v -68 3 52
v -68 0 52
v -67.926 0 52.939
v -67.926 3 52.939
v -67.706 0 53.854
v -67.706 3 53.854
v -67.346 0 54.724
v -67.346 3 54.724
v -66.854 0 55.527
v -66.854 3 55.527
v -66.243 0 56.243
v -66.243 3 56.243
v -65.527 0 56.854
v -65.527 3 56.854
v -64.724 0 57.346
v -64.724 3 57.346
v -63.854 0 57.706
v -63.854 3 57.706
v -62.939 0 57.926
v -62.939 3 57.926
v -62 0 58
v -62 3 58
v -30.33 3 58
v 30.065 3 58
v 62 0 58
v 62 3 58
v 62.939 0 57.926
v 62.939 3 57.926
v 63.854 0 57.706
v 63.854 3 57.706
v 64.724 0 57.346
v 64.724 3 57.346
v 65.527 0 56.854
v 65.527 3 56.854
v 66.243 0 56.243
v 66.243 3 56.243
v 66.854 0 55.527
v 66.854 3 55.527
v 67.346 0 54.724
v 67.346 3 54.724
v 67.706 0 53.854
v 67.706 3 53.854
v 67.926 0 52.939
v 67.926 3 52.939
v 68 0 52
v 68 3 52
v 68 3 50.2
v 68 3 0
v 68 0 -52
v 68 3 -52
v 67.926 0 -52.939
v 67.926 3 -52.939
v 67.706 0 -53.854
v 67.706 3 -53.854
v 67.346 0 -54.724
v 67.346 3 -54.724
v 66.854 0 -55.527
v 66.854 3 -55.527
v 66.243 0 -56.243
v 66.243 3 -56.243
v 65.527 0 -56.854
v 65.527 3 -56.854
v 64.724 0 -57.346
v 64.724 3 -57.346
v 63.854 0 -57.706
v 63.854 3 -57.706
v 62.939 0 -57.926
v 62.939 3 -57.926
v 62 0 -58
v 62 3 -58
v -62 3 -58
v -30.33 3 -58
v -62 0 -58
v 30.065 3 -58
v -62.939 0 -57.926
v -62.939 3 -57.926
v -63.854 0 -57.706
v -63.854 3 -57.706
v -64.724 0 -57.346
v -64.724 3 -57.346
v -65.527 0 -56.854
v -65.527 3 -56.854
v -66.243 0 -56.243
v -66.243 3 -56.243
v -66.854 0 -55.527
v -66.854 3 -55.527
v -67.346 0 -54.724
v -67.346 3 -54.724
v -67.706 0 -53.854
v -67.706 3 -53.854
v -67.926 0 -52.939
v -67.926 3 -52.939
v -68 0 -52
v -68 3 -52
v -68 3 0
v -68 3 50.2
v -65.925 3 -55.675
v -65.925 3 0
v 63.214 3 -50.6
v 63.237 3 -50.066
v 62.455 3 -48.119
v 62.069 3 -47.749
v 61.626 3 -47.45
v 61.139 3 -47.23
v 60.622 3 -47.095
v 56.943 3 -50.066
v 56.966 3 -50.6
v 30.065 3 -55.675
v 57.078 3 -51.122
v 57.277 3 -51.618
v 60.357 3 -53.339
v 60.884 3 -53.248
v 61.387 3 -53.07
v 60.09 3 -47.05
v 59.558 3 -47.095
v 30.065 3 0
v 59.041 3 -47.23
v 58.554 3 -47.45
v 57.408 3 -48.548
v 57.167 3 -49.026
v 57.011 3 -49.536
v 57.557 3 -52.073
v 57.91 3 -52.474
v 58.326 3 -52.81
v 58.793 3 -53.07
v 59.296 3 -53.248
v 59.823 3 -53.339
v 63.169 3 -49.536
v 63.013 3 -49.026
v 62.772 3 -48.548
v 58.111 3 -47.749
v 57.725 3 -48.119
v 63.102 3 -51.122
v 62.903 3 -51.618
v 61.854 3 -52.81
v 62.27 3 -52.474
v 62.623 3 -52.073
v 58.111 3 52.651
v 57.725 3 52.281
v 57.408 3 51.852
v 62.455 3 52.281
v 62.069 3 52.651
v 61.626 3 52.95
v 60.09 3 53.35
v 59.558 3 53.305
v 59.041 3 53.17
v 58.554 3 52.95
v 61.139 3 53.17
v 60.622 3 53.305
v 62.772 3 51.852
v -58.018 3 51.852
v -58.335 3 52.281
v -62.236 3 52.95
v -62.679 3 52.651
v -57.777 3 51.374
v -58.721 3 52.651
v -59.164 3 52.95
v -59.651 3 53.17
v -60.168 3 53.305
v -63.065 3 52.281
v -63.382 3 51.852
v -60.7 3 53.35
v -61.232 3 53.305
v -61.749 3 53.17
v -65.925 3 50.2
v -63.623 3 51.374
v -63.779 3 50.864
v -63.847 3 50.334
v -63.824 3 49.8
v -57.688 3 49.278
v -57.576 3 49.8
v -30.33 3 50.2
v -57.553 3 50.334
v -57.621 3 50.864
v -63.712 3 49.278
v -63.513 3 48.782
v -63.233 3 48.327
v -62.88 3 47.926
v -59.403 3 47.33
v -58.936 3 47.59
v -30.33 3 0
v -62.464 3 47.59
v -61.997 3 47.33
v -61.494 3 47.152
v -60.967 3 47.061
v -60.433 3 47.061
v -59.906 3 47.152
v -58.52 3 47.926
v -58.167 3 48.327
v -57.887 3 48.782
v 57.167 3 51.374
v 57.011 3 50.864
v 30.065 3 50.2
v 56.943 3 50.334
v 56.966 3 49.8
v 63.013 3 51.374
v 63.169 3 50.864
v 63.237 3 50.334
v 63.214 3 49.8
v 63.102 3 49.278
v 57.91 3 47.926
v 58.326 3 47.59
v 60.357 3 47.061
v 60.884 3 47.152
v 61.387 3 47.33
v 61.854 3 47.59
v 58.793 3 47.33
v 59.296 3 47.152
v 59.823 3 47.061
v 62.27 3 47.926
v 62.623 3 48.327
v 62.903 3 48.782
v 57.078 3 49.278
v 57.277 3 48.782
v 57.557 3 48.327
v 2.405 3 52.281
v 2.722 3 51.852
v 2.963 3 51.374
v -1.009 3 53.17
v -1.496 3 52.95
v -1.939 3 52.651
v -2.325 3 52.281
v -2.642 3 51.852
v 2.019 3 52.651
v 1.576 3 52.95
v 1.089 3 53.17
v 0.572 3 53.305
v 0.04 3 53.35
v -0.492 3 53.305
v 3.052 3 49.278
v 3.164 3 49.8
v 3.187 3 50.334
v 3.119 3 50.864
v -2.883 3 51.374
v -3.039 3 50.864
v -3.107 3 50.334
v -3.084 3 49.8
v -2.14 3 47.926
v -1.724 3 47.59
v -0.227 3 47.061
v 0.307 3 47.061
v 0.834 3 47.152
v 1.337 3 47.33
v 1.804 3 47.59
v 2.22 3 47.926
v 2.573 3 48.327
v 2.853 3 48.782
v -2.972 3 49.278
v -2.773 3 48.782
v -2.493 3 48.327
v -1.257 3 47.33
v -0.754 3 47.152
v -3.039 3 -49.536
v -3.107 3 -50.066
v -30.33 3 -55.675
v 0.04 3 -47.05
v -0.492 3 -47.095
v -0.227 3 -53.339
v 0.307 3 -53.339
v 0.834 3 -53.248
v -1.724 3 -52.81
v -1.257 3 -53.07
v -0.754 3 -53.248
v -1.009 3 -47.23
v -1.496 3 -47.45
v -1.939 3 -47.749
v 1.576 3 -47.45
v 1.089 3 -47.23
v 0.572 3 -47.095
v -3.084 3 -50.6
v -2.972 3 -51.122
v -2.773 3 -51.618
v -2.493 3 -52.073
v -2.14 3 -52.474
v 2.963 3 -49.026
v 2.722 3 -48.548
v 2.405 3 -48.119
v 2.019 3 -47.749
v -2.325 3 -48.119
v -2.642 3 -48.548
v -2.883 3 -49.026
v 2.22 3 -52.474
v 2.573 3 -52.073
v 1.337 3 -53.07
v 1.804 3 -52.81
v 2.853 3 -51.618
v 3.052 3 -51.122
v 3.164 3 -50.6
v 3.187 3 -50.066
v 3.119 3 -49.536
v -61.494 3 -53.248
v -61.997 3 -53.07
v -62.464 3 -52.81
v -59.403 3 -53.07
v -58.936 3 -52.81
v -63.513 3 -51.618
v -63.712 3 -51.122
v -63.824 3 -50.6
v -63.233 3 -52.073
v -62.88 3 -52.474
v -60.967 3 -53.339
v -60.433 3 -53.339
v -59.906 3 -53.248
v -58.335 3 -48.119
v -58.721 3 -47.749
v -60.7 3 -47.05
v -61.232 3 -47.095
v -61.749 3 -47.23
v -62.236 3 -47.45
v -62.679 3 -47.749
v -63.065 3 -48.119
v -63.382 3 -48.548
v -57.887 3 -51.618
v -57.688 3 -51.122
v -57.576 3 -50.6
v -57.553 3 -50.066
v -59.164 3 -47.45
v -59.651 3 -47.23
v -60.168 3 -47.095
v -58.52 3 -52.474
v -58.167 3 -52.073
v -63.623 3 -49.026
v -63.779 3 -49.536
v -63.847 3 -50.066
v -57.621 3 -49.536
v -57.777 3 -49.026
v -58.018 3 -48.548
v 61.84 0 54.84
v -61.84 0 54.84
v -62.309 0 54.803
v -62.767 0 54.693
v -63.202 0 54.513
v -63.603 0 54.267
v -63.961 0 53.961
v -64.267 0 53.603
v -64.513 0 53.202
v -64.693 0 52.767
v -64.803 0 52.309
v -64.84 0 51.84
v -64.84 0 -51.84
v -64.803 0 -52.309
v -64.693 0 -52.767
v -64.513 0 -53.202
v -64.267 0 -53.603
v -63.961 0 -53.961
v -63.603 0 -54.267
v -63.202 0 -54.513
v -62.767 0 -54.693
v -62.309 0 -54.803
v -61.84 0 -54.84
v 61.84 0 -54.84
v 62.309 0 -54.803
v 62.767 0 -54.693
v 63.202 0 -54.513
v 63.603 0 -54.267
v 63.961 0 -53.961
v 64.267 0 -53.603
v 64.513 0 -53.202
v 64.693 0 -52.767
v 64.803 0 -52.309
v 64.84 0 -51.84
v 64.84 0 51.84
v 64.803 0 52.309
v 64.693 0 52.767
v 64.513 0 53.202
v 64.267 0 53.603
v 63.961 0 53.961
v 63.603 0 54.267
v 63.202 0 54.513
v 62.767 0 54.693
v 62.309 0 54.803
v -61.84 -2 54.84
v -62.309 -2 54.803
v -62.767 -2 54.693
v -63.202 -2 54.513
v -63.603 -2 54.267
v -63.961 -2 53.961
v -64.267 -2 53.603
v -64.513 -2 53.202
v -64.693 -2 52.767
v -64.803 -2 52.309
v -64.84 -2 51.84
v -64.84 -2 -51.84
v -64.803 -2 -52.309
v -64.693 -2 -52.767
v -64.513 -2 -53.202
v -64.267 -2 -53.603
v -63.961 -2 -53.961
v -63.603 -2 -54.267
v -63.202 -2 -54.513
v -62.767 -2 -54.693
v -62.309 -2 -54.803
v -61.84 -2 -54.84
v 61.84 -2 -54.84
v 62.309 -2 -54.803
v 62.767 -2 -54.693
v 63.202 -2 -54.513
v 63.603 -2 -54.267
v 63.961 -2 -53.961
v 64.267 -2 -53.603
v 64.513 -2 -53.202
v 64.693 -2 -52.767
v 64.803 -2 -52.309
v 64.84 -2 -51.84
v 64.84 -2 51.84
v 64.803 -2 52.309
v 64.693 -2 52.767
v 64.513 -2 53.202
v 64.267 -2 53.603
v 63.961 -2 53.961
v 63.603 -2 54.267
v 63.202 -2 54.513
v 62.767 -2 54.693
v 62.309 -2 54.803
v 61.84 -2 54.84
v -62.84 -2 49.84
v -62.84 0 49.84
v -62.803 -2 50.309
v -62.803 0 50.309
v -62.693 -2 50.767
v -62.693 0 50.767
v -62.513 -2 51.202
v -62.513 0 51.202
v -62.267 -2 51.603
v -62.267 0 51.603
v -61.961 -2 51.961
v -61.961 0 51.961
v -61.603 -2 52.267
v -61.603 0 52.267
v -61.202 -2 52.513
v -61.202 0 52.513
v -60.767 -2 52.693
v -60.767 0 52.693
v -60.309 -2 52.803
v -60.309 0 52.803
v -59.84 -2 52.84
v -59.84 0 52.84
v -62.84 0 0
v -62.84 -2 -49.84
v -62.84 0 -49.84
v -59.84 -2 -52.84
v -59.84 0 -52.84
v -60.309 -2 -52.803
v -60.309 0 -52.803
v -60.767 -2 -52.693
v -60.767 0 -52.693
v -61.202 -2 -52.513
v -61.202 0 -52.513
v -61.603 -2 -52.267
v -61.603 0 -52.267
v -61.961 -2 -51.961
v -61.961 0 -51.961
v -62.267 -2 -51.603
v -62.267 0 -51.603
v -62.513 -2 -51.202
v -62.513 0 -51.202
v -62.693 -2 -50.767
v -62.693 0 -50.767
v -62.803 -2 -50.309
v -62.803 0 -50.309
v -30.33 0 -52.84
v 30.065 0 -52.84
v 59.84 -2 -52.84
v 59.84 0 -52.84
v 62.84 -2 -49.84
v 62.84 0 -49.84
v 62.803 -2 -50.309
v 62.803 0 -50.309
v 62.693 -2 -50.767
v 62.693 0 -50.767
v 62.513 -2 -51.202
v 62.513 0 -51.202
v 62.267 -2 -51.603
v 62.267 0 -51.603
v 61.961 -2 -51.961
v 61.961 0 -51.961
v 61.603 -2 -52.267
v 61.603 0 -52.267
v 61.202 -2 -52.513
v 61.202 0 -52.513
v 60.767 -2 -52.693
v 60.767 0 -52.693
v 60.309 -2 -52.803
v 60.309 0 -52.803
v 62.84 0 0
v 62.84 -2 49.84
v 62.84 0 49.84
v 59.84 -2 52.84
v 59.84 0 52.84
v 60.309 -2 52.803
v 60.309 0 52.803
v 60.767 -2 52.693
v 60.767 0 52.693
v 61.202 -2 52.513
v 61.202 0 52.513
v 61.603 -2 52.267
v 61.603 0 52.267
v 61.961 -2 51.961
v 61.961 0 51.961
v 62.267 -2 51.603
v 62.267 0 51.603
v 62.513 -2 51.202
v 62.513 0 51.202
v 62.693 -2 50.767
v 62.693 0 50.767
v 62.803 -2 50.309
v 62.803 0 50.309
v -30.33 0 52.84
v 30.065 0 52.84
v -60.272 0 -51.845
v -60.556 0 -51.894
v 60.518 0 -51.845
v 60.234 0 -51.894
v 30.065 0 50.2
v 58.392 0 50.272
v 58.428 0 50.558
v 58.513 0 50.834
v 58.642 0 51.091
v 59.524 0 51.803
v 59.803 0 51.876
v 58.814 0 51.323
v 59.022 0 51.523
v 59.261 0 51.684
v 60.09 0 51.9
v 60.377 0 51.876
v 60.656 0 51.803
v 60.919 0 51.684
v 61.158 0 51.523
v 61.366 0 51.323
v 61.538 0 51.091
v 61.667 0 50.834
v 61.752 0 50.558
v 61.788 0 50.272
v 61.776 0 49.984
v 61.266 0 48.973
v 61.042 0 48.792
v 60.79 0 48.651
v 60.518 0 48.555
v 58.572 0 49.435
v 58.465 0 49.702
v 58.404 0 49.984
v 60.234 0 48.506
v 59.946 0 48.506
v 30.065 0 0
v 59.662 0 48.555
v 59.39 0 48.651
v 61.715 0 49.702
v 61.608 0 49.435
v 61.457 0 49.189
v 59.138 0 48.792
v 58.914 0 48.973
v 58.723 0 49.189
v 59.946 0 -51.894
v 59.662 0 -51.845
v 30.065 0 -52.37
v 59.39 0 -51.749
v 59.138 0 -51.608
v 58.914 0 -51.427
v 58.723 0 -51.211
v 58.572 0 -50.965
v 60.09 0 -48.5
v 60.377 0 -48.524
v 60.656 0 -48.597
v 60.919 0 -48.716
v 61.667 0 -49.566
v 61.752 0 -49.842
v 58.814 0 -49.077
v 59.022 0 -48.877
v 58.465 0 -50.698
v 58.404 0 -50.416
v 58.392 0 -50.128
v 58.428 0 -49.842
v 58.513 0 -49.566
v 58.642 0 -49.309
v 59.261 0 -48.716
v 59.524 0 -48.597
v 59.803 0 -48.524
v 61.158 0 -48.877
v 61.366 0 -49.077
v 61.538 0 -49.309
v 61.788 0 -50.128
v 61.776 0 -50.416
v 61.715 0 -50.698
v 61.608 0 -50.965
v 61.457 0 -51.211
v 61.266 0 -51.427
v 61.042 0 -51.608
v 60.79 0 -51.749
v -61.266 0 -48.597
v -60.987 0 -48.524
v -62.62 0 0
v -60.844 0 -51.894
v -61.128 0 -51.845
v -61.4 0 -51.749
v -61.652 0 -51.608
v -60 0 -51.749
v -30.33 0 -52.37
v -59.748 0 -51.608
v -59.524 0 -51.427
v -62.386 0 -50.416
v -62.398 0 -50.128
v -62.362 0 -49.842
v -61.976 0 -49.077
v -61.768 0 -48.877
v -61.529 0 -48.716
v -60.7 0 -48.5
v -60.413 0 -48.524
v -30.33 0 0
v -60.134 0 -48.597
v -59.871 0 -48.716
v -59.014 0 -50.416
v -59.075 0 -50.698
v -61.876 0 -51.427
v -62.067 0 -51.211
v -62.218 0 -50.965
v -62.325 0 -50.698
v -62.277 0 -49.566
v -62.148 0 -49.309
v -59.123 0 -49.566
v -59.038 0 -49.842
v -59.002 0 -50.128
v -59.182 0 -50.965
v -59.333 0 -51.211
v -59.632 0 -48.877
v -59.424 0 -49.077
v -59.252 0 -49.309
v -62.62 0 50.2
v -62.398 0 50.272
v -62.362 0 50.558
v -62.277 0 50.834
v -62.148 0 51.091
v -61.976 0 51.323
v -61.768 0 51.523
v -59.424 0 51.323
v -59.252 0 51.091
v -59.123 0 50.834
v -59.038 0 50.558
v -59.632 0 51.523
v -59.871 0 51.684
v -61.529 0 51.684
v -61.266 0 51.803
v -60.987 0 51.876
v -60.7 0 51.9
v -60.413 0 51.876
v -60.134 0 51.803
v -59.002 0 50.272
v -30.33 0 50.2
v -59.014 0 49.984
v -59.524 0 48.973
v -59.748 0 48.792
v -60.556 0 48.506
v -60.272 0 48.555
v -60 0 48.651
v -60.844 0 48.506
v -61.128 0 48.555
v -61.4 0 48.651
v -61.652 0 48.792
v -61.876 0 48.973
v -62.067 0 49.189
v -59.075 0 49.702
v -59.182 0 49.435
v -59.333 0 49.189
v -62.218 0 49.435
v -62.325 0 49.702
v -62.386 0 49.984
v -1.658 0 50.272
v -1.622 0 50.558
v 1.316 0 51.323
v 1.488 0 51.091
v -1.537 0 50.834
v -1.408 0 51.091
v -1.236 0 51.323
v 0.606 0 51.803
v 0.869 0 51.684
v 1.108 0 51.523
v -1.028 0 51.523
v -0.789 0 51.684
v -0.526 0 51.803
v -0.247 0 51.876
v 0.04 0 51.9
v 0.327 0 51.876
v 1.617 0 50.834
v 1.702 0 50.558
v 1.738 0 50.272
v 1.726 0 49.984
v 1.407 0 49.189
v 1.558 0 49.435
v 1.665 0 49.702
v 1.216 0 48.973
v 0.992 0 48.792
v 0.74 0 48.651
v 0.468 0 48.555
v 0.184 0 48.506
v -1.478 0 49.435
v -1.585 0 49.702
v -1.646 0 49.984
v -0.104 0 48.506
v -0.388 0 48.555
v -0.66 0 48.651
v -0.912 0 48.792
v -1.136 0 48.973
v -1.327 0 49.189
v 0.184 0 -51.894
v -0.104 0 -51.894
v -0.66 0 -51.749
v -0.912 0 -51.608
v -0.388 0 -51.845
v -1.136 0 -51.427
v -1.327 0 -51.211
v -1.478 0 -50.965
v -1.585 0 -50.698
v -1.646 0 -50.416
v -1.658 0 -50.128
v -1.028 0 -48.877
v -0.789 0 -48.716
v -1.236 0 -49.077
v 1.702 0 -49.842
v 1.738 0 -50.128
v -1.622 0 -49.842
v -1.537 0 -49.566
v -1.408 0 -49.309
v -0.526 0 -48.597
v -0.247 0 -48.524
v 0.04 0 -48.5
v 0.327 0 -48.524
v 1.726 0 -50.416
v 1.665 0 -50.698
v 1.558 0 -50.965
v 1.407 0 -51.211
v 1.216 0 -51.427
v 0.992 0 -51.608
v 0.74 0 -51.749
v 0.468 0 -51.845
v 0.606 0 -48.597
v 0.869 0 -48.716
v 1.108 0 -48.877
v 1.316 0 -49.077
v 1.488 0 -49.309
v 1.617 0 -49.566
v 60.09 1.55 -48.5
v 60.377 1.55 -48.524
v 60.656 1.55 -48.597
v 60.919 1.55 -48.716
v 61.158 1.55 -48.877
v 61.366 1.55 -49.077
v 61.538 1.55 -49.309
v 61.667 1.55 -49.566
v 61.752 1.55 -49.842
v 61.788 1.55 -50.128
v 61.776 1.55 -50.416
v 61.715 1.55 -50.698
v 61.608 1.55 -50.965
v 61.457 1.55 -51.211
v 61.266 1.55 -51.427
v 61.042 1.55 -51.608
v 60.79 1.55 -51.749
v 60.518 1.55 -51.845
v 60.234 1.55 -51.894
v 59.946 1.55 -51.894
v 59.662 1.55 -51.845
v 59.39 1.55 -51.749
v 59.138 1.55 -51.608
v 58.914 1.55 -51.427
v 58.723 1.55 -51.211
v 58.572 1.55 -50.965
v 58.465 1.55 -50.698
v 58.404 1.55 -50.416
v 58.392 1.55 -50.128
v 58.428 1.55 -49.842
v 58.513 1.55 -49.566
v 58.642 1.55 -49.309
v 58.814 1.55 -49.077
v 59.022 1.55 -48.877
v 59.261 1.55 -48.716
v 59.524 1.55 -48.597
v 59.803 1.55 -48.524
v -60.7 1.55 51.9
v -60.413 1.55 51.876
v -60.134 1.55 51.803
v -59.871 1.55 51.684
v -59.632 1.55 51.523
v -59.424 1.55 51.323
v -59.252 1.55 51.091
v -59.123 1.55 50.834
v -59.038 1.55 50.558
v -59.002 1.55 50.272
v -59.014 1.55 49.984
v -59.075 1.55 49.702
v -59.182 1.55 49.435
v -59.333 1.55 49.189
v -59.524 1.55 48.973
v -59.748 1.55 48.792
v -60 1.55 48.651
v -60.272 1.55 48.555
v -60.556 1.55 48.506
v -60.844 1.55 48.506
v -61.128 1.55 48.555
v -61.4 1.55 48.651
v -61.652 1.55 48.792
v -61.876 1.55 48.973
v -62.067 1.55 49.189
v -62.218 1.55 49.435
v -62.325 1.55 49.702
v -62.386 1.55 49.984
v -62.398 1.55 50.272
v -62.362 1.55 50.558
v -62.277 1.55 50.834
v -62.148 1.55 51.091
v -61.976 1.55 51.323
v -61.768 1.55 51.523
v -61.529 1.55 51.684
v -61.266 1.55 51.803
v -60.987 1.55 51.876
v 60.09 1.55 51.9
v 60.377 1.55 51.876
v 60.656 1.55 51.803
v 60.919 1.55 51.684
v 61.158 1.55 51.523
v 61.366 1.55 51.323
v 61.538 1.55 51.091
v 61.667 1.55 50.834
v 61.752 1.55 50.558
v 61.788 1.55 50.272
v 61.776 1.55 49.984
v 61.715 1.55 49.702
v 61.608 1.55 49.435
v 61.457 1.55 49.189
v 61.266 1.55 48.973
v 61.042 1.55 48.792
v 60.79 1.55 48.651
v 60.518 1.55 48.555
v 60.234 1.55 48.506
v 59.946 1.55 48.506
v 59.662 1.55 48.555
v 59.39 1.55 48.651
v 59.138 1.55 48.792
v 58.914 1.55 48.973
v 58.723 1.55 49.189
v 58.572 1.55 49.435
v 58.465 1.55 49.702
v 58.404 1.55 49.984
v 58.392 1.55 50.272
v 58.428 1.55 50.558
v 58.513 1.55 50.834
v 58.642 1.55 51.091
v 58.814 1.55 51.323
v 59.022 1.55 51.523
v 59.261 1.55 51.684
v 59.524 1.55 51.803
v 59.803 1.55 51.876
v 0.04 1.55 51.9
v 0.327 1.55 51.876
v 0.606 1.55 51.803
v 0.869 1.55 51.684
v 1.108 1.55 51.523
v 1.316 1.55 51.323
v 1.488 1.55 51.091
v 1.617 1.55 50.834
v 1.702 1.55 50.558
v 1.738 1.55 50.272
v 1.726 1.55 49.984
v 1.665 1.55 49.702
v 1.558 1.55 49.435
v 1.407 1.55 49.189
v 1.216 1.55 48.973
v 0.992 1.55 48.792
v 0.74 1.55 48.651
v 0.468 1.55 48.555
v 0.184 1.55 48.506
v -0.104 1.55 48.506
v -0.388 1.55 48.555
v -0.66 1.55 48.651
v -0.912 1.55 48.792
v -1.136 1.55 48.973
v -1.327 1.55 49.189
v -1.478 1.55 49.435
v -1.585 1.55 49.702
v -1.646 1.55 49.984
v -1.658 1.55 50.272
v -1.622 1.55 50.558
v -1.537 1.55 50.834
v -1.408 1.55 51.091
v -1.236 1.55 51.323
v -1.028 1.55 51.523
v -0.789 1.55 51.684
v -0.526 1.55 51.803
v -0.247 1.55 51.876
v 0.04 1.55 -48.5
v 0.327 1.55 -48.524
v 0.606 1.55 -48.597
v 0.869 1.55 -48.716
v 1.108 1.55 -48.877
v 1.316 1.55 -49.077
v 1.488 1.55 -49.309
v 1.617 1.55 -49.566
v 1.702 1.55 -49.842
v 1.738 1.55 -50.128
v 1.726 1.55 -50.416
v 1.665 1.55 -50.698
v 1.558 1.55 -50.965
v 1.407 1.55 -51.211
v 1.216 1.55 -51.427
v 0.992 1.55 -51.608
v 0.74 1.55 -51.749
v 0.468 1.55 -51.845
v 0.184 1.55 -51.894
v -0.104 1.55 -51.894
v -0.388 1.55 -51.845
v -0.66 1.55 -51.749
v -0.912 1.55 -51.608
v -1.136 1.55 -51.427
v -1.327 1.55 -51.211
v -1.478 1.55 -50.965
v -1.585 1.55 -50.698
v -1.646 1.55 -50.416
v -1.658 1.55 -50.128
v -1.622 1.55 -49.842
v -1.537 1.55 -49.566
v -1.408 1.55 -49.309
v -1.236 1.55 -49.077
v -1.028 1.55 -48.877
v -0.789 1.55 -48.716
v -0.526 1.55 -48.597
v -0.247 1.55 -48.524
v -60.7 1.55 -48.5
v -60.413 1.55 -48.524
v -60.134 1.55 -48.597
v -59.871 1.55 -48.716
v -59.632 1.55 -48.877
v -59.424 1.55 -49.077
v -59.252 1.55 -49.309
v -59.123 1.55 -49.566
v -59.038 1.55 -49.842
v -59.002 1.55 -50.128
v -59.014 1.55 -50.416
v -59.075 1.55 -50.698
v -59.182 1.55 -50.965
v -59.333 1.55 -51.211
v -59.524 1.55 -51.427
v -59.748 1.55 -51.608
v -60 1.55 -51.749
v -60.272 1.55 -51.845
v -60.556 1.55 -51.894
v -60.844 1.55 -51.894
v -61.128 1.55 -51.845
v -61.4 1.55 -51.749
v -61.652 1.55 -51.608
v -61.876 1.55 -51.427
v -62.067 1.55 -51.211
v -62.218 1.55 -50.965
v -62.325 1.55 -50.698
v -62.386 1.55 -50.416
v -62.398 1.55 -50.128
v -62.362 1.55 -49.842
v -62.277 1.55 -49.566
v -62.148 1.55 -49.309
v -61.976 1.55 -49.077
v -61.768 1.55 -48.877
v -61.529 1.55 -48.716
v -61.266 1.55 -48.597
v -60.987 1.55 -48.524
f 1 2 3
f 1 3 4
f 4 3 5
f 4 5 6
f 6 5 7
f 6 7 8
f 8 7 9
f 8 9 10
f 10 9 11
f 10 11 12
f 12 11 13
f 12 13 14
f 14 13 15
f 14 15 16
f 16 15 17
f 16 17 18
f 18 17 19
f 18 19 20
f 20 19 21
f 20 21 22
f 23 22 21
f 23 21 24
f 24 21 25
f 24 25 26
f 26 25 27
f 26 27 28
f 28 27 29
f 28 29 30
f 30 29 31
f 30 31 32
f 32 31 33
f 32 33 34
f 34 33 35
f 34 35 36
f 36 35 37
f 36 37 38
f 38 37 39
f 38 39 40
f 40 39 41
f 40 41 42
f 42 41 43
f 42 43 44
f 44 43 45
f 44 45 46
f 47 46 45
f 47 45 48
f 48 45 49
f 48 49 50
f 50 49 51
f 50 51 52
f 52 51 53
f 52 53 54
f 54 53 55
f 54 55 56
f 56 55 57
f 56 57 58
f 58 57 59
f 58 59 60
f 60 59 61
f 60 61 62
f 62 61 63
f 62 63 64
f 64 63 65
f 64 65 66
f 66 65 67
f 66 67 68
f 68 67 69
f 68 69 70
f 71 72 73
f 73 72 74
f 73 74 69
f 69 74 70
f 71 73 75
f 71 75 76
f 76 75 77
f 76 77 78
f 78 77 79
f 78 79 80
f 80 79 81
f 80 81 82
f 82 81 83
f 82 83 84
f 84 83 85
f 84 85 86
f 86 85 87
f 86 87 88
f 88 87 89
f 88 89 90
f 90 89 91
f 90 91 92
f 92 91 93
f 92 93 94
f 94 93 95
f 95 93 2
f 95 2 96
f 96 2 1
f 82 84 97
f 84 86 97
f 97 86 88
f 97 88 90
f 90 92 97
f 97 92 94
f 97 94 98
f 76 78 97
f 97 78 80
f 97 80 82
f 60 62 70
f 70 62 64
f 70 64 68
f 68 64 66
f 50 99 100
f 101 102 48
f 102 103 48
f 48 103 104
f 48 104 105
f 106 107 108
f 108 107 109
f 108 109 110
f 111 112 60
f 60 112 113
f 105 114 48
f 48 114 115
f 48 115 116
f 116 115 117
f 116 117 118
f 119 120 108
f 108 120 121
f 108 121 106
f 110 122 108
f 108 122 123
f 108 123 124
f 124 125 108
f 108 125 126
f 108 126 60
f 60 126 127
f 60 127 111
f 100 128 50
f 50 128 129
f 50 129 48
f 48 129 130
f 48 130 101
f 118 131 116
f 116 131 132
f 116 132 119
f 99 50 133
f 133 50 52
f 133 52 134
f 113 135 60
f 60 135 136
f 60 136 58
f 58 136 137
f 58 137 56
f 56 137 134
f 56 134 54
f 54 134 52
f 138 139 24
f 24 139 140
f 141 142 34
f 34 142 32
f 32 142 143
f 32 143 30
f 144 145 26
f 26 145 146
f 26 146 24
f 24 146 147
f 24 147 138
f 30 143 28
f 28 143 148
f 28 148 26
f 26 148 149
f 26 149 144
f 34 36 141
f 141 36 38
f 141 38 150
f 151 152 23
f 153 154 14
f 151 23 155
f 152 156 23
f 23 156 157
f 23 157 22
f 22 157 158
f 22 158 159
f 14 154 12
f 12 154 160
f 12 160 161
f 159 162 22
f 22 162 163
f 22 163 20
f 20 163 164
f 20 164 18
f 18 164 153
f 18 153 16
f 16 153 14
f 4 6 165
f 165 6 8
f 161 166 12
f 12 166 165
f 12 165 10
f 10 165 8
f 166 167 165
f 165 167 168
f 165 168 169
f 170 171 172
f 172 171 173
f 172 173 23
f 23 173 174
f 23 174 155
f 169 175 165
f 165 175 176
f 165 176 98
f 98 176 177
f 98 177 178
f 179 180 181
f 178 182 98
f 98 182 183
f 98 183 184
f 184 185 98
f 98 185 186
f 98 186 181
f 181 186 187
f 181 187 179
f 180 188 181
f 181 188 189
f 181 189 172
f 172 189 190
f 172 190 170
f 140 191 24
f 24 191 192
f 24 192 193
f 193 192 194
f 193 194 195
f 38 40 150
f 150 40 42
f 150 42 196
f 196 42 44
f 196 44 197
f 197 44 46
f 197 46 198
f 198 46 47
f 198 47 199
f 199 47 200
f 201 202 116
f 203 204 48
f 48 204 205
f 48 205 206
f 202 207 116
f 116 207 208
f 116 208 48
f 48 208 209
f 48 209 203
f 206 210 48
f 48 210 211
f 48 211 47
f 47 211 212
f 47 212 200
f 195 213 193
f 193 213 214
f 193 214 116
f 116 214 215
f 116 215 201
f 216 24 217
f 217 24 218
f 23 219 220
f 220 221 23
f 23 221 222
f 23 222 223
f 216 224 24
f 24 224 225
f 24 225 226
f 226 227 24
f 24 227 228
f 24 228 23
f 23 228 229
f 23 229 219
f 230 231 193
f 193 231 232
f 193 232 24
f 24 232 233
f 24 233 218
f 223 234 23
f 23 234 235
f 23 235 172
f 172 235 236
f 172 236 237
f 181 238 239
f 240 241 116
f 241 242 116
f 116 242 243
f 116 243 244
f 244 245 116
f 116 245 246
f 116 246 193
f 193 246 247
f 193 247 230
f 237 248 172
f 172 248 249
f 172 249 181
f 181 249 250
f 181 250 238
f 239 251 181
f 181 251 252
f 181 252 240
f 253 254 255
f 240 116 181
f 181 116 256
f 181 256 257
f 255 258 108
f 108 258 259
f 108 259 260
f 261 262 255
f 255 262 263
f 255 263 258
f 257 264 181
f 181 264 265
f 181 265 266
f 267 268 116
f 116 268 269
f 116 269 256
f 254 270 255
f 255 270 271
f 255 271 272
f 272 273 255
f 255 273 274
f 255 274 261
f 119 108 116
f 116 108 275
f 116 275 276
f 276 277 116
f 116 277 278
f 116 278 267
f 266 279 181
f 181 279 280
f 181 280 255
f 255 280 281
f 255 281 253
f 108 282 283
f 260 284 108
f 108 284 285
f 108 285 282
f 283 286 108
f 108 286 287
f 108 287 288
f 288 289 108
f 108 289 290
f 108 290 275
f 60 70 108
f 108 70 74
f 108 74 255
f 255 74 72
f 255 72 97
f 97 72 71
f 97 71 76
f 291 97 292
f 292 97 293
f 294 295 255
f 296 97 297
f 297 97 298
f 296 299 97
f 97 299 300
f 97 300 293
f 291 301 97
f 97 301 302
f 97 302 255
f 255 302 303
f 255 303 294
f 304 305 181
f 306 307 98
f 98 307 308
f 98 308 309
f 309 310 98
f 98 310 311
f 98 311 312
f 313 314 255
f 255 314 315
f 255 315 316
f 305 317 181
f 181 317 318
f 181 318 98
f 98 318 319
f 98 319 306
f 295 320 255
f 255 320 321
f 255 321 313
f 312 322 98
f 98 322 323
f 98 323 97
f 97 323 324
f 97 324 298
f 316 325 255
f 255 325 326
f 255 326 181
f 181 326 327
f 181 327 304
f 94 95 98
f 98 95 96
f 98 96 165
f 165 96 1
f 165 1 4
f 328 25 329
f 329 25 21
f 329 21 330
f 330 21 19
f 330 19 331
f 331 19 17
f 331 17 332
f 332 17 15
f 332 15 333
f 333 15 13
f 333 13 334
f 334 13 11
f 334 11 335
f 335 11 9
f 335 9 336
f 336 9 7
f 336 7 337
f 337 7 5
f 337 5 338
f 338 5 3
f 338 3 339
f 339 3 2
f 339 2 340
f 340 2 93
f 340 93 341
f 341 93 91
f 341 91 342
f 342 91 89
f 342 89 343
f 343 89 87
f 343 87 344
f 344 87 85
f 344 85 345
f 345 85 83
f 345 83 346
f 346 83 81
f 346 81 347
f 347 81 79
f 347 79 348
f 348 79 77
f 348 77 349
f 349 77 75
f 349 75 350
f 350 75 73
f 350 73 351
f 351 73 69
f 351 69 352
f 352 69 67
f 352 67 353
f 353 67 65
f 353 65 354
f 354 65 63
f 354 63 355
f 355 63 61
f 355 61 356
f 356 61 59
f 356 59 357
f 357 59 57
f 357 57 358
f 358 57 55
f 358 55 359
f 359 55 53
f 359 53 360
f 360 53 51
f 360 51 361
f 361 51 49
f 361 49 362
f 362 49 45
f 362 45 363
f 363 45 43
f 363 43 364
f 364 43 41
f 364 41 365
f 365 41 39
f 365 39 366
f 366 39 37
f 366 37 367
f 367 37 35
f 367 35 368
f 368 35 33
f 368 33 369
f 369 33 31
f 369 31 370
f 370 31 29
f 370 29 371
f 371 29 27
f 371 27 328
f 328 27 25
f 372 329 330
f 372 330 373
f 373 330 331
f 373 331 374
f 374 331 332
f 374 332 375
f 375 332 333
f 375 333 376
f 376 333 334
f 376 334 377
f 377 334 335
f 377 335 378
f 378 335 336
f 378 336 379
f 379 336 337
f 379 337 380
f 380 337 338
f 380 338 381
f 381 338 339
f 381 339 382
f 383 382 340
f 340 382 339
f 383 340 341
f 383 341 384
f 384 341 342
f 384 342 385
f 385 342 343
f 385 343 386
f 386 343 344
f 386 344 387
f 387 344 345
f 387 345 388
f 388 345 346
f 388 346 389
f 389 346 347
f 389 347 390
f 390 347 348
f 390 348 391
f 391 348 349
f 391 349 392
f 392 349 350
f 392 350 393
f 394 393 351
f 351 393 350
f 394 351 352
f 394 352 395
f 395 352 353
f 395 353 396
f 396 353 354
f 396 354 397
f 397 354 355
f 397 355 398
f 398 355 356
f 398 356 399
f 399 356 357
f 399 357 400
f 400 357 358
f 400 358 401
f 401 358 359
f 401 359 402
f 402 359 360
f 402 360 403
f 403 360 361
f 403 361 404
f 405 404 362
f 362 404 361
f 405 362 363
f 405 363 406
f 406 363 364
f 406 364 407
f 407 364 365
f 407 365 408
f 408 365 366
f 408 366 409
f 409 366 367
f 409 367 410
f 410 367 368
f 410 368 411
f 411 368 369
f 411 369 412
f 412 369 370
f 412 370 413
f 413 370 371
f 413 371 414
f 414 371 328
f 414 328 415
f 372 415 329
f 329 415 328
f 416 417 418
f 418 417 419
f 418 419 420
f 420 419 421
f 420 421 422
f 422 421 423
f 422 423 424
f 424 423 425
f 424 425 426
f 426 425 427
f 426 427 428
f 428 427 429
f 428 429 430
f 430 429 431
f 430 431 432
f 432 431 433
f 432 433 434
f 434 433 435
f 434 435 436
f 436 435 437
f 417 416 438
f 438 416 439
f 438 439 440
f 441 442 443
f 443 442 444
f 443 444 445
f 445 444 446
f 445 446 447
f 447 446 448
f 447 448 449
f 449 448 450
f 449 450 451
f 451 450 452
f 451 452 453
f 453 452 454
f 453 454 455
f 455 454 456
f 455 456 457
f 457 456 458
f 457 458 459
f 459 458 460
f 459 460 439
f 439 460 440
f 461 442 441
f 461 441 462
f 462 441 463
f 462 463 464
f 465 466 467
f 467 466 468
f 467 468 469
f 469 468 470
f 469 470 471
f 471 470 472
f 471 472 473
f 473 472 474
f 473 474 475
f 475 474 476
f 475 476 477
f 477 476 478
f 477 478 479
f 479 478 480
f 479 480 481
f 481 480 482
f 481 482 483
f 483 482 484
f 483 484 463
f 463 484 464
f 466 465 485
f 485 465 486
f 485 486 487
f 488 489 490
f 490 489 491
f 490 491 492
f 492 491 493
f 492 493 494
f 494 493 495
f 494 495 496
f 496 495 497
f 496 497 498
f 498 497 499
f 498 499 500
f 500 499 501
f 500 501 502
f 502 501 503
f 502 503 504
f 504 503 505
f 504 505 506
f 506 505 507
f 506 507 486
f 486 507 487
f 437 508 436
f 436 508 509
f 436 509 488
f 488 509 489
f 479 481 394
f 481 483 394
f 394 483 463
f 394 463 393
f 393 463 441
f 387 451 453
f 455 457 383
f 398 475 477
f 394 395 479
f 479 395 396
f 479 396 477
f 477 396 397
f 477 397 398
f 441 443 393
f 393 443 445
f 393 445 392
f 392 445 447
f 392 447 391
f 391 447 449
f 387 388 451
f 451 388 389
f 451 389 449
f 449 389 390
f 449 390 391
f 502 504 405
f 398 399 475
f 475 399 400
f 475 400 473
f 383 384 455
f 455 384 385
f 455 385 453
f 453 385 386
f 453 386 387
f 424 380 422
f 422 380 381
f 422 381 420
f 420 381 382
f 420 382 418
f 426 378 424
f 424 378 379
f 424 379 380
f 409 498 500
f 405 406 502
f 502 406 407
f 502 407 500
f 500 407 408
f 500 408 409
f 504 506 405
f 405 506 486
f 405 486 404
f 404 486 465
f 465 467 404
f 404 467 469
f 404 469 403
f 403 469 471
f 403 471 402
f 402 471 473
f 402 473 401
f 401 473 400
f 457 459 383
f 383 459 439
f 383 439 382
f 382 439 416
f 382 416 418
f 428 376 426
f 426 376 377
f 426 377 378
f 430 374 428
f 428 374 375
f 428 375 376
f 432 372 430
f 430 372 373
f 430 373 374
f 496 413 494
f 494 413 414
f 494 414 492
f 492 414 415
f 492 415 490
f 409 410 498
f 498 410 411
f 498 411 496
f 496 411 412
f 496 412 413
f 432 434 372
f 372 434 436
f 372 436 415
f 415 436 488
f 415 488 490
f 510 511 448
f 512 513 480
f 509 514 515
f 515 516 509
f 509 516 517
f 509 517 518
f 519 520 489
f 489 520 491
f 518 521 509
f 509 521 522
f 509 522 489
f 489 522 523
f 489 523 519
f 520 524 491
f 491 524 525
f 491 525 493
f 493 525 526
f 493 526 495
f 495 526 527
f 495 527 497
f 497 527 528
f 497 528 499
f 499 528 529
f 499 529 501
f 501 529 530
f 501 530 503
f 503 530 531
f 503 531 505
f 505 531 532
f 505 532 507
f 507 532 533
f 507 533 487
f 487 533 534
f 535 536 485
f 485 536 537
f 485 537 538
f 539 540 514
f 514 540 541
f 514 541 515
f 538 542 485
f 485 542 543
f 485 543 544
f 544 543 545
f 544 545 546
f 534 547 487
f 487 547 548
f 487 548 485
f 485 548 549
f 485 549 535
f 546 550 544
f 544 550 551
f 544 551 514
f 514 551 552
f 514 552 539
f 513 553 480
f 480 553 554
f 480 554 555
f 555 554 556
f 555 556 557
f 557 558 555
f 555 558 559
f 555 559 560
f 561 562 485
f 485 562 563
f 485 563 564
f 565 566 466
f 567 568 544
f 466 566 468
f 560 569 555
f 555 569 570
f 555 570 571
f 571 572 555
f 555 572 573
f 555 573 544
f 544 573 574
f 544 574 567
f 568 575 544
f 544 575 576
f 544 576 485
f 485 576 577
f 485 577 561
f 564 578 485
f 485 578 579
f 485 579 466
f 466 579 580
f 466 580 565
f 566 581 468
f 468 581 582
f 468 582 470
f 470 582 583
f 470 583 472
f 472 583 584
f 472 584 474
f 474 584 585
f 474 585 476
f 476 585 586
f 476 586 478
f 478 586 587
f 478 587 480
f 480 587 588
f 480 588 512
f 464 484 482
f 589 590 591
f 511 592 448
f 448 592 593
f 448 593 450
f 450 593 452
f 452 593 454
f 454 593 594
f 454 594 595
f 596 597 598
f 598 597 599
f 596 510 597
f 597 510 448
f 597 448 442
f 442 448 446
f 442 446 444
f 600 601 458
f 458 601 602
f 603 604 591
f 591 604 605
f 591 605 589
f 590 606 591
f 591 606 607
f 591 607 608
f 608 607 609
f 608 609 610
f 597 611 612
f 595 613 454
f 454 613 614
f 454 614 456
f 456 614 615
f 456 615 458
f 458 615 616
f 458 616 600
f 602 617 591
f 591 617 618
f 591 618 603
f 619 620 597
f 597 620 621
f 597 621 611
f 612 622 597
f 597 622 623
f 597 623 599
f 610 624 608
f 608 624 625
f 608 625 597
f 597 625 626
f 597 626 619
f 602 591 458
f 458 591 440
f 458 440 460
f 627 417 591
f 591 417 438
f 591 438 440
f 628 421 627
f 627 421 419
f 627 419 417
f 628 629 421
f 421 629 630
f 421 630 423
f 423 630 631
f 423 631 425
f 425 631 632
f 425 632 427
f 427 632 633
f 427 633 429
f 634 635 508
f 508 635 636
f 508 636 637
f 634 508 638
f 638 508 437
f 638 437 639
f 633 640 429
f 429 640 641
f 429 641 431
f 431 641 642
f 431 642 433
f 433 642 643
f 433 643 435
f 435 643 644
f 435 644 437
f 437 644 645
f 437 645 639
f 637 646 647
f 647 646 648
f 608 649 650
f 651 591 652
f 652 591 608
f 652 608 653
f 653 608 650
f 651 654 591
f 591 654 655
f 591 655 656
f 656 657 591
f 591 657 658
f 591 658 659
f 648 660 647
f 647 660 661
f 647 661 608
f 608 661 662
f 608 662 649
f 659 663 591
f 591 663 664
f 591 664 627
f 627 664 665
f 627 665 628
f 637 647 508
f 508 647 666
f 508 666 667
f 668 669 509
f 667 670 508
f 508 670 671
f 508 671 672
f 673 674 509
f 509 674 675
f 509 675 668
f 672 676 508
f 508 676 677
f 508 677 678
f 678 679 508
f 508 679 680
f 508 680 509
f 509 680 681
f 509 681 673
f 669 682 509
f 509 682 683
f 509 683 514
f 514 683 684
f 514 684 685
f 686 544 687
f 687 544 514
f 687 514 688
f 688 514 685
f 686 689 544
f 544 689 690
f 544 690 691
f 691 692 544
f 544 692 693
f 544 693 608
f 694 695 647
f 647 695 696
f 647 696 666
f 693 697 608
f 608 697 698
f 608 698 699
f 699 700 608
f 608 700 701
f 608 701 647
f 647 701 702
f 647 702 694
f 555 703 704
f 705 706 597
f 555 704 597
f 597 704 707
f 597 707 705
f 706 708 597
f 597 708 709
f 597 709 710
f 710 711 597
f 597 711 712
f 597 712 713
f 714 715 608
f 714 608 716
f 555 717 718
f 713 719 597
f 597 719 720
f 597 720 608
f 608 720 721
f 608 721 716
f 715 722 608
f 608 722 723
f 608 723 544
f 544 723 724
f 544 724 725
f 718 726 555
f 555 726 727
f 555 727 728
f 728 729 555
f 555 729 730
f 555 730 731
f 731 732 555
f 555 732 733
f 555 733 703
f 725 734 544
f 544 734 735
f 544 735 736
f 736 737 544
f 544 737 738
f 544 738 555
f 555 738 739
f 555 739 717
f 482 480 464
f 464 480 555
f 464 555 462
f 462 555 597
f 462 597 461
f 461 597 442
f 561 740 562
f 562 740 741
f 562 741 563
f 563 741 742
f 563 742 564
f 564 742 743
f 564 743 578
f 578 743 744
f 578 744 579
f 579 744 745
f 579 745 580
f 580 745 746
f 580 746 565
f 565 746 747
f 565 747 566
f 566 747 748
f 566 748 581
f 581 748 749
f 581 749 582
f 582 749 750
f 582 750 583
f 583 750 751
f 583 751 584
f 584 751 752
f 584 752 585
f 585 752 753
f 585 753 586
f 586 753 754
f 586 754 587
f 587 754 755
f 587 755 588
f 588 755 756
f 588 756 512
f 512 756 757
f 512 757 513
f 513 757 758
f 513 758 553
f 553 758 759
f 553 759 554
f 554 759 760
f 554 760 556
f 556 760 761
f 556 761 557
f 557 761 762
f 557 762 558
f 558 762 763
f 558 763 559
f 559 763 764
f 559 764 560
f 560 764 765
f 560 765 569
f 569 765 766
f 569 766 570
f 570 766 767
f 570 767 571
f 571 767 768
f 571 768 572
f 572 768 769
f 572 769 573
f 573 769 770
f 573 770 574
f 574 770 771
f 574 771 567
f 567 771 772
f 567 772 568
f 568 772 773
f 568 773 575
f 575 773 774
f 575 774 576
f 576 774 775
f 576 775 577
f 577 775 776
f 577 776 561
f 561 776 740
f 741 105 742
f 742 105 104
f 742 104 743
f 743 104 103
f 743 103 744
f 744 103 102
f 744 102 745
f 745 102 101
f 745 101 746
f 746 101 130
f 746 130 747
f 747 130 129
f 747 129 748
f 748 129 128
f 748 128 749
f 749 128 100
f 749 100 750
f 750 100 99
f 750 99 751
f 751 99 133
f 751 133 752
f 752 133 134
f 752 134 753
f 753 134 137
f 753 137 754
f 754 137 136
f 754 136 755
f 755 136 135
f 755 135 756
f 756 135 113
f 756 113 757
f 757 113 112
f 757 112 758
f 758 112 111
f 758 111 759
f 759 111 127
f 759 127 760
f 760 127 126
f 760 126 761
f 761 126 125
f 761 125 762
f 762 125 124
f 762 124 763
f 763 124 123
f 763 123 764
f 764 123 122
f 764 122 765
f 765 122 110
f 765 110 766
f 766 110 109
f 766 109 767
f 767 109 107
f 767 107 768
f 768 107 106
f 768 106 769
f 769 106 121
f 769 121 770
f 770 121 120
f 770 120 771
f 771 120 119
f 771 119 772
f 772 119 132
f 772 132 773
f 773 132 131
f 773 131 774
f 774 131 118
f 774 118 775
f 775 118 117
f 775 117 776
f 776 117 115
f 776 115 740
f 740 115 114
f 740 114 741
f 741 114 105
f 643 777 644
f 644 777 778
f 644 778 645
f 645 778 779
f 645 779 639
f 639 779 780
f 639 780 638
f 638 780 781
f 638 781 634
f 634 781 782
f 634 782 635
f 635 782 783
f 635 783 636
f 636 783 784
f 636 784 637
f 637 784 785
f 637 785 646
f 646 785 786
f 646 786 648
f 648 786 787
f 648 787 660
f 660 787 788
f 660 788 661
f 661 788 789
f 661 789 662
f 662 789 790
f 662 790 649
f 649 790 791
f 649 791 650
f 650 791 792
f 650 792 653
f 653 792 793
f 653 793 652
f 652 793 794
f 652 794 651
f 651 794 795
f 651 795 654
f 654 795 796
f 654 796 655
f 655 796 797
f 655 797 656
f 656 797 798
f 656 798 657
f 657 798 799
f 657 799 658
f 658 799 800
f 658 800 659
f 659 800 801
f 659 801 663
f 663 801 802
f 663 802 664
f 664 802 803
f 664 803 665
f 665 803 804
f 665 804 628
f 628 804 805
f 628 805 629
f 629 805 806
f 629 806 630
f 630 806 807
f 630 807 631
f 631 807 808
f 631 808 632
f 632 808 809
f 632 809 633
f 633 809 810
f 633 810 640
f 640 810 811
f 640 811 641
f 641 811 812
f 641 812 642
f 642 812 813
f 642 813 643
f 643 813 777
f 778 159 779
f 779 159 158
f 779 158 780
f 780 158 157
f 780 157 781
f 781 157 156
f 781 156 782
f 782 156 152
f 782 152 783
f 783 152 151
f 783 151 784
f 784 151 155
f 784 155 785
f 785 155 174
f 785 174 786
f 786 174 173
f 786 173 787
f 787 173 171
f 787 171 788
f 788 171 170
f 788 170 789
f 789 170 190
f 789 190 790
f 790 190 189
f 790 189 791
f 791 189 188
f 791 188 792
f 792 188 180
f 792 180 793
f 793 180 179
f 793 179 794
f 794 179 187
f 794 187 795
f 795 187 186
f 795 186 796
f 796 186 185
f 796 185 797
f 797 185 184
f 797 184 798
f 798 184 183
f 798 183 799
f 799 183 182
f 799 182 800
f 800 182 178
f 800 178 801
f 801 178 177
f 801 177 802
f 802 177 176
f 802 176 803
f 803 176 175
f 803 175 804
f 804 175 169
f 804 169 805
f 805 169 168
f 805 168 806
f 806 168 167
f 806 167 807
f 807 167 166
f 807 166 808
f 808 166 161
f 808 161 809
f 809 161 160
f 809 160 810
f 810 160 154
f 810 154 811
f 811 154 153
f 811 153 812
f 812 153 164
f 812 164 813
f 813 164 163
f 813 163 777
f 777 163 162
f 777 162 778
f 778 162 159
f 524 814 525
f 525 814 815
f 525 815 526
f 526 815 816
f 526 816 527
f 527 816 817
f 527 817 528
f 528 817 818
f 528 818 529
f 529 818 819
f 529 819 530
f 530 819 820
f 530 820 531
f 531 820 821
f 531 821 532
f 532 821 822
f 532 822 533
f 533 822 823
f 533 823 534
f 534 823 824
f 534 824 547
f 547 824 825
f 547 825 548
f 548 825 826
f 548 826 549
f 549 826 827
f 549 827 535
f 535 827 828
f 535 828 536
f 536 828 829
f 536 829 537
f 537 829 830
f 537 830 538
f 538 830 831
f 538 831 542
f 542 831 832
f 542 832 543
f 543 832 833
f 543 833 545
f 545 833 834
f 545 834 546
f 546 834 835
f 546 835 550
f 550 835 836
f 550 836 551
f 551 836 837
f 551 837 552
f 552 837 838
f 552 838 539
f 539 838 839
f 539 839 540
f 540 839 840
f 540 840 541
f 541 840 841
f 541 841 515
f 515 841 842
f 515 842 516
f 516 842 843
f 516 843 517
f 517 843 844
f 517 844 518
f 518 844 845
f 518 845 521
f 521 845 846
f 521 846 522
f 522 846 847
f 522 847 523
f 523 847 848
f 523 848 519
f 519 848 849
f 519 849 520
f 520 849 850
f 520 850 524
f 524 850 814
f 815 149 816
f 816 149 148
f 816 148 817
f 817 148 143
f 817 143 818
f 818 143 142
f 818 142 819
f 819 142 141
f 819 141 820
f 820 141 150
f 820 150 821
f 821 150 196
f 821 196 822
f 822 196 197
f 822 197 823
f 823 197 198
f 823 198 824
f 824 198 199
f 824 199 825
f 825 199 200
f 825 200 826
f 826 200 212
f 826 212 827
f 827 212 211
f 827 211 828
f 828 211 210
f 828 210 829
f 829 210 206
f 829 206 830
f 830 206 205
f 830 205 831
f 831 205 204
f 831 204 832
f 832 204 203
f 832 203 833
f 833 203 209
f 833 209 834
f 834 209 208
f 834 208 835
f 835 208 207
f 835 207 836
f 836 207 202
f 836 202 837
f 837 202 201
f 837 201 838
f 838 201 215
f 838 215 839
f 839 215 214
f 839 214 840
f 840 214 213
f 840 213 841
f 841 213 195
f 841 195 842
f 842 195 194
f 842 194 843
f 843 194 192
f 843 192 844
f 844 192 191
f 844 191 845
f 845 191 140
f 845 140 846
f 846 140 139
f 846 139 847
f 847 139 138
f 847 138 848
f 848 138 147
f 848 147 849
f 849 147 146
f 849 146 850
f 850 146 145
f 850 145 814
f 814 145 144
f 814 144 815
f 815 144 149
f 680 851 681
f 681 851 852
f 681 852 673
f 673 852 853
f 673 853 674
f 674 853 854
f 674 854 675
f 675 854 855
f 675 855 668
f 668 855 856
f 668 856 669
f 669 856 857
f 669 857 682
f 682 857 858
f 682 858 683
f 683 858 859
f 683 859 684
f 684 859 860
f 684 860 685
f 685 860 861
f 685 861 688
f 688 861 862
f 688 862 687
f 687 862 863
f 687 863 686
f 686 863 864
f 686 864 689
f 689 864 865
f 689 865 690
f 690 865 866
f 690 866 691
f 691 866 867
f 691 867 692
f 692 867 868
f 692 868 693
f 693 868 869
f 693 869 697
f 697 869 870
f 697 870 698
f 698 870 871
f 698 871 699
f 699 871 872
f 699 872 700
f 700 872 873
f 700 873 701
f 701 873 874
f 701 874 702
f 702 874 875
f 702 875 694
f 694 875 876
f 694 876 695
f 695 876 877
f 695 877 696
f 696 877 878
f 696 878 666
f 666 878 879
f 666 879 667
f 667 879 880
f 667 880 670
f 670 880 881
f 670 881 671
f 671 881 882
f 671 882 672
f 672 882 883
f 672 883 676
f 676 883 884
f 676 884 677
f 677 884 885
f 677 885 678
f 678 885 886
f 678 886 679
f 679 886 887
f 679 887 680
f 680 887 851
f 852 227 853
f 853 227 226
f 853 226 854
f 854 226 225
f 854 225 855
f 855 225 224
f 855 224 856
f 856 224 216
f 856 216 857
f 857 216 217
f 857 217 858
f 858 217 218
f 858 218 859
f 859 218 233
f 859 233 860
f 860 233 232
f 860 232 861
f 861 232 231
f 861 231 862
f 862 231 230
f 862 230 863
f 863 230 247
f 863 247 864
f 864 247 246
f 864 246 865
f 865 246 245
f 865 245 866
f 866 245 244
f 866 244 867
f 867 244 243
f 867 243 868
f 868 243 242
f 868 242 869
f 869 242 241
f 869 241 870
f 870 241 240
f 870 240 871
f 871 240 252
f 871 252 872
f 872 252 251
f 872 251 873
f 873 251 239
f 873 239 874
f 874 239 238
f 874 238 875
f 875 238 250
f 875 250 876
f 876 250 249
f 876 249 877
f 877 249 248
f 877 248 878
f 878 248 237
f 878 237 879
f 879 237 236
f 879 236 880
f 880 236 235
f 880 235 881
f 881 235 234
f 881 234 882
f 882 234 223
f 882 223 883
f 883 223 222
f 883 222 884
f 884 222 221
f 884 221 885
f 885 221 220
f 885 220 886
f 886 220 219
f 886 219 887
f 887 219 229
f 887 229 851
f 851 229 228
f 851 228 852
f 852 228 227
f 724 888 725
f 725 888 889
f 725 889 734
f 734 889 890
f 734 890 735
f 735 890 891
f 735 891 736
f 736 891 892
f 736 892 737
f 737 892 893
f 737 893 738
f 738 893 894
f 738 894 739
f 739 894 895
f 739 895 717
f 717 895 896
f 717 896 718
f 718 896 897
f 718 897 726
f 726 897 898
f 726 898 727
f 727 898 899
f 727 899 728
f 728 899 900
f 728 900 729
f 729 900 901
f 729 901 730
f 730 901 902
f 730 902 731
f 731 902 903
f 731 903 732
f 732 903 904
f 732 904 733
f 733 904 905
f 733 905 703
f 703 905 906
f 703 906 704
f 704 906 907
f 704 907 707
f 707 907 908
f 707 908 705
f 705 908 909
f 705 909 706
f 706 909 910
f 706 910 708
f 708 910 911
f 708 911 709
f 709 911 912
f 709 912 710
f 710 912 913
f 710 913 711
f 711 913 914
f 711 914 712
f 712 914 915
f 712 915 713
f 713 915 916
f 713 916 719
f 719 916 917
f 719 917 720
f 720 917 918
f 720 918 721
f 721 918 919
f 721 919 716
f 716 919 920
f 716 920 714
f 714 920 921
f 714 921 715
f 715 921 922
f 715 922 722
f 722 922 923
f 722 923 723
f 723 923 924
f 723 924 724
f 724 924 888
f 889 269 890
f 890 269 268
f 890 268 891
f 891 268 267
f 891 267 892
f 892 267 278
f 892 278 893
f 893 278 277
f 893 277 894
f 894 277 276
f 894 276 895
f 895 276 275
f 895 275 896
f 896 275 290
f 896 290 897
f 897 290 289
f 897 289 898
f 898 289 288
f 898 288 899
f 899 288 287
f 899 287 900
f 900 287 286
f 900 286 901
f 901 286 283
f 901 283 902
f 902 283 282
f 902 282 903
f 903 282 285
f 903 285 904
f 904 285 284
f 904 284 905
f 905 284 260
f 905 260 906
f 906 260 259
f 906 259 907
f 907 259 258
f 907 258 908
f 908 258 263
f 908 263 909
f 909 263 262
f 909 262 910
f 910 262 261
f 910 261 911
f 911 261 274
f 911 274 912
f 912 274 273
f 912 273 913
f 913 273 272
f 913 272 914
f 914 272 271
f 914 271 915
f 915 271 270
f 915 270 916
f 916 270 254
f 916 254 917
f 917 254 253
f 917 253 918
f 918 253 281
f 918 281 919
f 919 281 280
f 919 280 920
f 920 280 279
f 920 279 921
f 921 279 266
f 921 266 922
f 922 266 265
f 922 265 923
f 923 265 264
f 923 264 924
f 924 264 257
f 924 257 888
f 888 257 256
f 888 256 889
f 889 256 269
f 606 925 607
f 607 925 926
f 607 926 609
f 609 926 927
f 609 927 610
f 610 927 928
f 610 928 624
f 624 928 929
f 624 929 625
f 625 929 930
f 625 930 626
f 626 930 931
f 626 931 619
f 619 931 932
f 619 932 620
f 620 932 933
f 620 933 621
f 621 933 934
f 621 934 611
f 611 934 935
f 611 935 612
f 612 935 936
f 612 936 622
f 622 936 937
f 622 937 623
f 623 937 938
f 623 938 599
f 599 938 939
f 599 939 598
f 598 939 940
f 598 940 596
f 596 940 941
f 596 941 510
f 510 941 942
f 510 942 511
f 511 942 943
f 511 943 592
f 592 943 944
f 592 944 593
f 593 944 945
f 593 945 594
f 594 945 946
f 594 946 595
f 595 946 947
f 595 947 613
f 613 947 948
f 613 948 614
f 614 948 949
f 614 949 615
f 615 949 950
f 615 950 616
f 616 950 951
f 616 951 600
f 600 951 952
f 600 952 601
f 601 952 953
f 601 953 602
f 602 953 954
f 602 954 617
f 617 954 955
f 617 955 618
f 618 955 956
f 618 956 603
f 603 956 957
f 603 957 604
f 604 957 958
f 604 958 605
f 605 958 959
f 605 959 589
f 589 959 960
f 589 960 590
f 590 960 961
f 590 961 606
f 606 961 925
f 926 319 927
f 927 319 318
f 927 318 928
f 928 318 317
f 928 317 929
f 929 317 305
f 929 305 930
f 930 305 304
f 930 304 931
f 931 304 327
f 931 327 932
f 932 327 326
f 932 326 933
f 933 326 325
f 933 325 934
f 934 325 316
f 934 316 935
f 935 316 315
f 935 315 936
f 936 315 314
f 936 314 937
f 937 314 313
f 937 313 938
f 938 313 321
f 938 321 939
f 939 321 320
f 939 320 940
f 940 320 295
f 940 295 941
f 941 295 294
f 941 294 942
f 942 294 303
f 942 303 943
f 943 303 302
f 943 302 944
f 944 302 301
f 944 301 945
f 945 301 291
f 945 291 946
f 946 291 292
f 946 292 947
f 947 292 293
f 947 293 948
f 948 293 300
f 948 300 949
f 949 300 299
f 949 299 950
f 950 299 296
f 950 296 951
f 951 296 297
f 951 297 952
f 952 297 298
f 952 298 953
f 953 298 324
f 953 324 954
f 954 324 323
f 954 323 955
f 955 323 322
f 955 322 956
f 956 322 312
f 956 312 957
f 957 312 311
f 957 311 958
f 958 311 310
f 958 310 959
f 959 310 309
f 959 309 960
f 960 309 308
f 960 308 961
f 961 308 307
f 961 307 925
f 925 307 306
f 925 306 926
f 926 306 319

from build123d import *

# Parameters (mm, degrees)
BOSS_EXTRUDE1_DEPTH                                 = 3
BOSS_EXTRUDE2_DEPTH                                 = 5
CSK_FOR_M3_COUNTERSUNK_FLAT_HEAD_SCREW1_D           = 3.4
CSK_FOR_M3_COUNTERSUNK_FLAT_HEAD_SCREW1_DEPTH       = 6
CSK_FOR_M3_COUNTERSUNK_FLAT_HEAD_SCREW1_CSINK_D     = 6.3
CSK_FOR_M3_COUNTERSUNK_FLAT_HEAD_SCREW1_CSINK_ANGLE = 90
CSK_FOR_M3_COUNTERSUNK_FLAT_HEAD_SCREW1_TIP         = 1.021463052


with BuildPart() as part:
    # Sketch1 → Boss-Extrude1 (new body)
    with BuildSketch(Plane(origin=(0, 0, 0), x_dir=(1, 0, 0), z_dir=(0, 1, 0))):
        with BuildLine():
            Line((62, -58), (-62, -58))
            ThreePointArc((-62, -58), (-66.242640687, -56.242640687), (-68, -52))
            Line((-68, -52), (-68, 52))
            ThreePointArc((-68, 52), (-66.242640687, 56.242640687), (-62, 58))
            Line((-62, 58), (62, 58))
            ThreePointArc((62, 58), (66.242640687, 56.242640687), (68, 52))
            Line((68, 52), (68, -52))
            ThreePointArc((68, -52), (66.242640687, -56.242640687), (62, -58))
        make_face()
    extrude(amount=BOSS_EXTRUDE1_DEPTH)

    # Sketch2 → Boss-Extrude2 (add)
    with BuildSketch(Plane(origin=(0, 3, 0), x_dir=(1, 0, 0), z_dir=(0, 1, 0))):
        with BuildLine():
            Line((-61.84, 54.84), (61.84, 54.84))
            ThreePointArc((61.84, 54.84), (63.961320344, 53.961320344), (64.84, 51.84))
            Line((64.84, 51.84), (64.84, -51.84))
            ThreePointArc((64.84, -51.84), (63.961320344, -53.961320344), (61.84, -54.84))
            Line((61.84, -54.84), (-61.84, -54.84))
            ThreePointArc((-61.84, -54.84), (-63.961320344, -53.961320344), (-64.84, -51.84))
            Line((-64.84, -51.84), (-64.84, 51.84))
            ThreePointArc((-64.84, 51.84), (-63.961320344, 53.961320344), (-61.84, 54.84))
        make_face()
        with BuildLine():
            Line((-62.84, 49.84), (-62.84, -49.84))
            ThreePointArc((-62.84, -49.84), (-61.961320344, -51.961320344), (-59.84, -52.84))
            Line((-59.84, -52.84), (59.84, -52.84))
            ThreePointArc((59.84, -52.84), (61.961320344, -51.961320344), (62.84, -49.84))
            Line((62.84, -49.84), (62.84, 49.84))
            ThreePointArc((62.84, 49.84), (61.961320344, 51.961320344), (59.84, 52.84))
            Line((59.84, 52.84), (-59.84, 52.84))
            ThreePointArc((-59.84, 52.84), (-61.961320344, 51.961320344), (-62.84, 49.84))
        make_face(mode=Mode.SUBTRACT)
    extrude(amount=-BOSS_EXTRUDE2_DEPTH)

    # CSK for M3 Countersunk Flat Head Screw1
    with Locations(Plane(origin=(-60.7, 3, -50.2), x_dir=(0, 0, 1), z_dir=(0, 1, 0))):
        with Locations((0, 0), (0, 60.74), (0, 120.79), (100.4, 0), (100.4, 60.74), (100.4, 120.79)):
            CounterSinkHole(CSK_FOR_M3_COUNTERSUNK_FLAT_HEAD_SCREW1_D / 2, CSK_FOR_M3_COUNTERSUNK_FLAT_HEAD_SCREW1_CSINK_D / 2, depth=CSK_FOR_M3_COUNTERSUNK_FLAT_HEAD_SCREW1_DEPTH, counter_sink_angle=CSK_FOR_M3_COUNTERSUNK_FLAT_HEAD_SCREW1_CSINK_ANGLE)
            with Locations((0, 0, -(CSK_FOR_M3_COUNTERSUNK_FLAT_HEAD_SCREW1_DEPTH + CSK_FOR_M3_COUNTERSUNK_FLAT_HEAD_SCREW1_TIP / 2))):  # 118° drill point
                Cone(0, CSK_FOR_M3_COUNTERSUNK_FLAT_HEAD_SCREW1_D / 2, CSK_FOR_M3_COUNTERSUNK_FLAT_HEAD_SCREW1_TIP, mode=Mode.SUBTRACT)


solid = part.part
